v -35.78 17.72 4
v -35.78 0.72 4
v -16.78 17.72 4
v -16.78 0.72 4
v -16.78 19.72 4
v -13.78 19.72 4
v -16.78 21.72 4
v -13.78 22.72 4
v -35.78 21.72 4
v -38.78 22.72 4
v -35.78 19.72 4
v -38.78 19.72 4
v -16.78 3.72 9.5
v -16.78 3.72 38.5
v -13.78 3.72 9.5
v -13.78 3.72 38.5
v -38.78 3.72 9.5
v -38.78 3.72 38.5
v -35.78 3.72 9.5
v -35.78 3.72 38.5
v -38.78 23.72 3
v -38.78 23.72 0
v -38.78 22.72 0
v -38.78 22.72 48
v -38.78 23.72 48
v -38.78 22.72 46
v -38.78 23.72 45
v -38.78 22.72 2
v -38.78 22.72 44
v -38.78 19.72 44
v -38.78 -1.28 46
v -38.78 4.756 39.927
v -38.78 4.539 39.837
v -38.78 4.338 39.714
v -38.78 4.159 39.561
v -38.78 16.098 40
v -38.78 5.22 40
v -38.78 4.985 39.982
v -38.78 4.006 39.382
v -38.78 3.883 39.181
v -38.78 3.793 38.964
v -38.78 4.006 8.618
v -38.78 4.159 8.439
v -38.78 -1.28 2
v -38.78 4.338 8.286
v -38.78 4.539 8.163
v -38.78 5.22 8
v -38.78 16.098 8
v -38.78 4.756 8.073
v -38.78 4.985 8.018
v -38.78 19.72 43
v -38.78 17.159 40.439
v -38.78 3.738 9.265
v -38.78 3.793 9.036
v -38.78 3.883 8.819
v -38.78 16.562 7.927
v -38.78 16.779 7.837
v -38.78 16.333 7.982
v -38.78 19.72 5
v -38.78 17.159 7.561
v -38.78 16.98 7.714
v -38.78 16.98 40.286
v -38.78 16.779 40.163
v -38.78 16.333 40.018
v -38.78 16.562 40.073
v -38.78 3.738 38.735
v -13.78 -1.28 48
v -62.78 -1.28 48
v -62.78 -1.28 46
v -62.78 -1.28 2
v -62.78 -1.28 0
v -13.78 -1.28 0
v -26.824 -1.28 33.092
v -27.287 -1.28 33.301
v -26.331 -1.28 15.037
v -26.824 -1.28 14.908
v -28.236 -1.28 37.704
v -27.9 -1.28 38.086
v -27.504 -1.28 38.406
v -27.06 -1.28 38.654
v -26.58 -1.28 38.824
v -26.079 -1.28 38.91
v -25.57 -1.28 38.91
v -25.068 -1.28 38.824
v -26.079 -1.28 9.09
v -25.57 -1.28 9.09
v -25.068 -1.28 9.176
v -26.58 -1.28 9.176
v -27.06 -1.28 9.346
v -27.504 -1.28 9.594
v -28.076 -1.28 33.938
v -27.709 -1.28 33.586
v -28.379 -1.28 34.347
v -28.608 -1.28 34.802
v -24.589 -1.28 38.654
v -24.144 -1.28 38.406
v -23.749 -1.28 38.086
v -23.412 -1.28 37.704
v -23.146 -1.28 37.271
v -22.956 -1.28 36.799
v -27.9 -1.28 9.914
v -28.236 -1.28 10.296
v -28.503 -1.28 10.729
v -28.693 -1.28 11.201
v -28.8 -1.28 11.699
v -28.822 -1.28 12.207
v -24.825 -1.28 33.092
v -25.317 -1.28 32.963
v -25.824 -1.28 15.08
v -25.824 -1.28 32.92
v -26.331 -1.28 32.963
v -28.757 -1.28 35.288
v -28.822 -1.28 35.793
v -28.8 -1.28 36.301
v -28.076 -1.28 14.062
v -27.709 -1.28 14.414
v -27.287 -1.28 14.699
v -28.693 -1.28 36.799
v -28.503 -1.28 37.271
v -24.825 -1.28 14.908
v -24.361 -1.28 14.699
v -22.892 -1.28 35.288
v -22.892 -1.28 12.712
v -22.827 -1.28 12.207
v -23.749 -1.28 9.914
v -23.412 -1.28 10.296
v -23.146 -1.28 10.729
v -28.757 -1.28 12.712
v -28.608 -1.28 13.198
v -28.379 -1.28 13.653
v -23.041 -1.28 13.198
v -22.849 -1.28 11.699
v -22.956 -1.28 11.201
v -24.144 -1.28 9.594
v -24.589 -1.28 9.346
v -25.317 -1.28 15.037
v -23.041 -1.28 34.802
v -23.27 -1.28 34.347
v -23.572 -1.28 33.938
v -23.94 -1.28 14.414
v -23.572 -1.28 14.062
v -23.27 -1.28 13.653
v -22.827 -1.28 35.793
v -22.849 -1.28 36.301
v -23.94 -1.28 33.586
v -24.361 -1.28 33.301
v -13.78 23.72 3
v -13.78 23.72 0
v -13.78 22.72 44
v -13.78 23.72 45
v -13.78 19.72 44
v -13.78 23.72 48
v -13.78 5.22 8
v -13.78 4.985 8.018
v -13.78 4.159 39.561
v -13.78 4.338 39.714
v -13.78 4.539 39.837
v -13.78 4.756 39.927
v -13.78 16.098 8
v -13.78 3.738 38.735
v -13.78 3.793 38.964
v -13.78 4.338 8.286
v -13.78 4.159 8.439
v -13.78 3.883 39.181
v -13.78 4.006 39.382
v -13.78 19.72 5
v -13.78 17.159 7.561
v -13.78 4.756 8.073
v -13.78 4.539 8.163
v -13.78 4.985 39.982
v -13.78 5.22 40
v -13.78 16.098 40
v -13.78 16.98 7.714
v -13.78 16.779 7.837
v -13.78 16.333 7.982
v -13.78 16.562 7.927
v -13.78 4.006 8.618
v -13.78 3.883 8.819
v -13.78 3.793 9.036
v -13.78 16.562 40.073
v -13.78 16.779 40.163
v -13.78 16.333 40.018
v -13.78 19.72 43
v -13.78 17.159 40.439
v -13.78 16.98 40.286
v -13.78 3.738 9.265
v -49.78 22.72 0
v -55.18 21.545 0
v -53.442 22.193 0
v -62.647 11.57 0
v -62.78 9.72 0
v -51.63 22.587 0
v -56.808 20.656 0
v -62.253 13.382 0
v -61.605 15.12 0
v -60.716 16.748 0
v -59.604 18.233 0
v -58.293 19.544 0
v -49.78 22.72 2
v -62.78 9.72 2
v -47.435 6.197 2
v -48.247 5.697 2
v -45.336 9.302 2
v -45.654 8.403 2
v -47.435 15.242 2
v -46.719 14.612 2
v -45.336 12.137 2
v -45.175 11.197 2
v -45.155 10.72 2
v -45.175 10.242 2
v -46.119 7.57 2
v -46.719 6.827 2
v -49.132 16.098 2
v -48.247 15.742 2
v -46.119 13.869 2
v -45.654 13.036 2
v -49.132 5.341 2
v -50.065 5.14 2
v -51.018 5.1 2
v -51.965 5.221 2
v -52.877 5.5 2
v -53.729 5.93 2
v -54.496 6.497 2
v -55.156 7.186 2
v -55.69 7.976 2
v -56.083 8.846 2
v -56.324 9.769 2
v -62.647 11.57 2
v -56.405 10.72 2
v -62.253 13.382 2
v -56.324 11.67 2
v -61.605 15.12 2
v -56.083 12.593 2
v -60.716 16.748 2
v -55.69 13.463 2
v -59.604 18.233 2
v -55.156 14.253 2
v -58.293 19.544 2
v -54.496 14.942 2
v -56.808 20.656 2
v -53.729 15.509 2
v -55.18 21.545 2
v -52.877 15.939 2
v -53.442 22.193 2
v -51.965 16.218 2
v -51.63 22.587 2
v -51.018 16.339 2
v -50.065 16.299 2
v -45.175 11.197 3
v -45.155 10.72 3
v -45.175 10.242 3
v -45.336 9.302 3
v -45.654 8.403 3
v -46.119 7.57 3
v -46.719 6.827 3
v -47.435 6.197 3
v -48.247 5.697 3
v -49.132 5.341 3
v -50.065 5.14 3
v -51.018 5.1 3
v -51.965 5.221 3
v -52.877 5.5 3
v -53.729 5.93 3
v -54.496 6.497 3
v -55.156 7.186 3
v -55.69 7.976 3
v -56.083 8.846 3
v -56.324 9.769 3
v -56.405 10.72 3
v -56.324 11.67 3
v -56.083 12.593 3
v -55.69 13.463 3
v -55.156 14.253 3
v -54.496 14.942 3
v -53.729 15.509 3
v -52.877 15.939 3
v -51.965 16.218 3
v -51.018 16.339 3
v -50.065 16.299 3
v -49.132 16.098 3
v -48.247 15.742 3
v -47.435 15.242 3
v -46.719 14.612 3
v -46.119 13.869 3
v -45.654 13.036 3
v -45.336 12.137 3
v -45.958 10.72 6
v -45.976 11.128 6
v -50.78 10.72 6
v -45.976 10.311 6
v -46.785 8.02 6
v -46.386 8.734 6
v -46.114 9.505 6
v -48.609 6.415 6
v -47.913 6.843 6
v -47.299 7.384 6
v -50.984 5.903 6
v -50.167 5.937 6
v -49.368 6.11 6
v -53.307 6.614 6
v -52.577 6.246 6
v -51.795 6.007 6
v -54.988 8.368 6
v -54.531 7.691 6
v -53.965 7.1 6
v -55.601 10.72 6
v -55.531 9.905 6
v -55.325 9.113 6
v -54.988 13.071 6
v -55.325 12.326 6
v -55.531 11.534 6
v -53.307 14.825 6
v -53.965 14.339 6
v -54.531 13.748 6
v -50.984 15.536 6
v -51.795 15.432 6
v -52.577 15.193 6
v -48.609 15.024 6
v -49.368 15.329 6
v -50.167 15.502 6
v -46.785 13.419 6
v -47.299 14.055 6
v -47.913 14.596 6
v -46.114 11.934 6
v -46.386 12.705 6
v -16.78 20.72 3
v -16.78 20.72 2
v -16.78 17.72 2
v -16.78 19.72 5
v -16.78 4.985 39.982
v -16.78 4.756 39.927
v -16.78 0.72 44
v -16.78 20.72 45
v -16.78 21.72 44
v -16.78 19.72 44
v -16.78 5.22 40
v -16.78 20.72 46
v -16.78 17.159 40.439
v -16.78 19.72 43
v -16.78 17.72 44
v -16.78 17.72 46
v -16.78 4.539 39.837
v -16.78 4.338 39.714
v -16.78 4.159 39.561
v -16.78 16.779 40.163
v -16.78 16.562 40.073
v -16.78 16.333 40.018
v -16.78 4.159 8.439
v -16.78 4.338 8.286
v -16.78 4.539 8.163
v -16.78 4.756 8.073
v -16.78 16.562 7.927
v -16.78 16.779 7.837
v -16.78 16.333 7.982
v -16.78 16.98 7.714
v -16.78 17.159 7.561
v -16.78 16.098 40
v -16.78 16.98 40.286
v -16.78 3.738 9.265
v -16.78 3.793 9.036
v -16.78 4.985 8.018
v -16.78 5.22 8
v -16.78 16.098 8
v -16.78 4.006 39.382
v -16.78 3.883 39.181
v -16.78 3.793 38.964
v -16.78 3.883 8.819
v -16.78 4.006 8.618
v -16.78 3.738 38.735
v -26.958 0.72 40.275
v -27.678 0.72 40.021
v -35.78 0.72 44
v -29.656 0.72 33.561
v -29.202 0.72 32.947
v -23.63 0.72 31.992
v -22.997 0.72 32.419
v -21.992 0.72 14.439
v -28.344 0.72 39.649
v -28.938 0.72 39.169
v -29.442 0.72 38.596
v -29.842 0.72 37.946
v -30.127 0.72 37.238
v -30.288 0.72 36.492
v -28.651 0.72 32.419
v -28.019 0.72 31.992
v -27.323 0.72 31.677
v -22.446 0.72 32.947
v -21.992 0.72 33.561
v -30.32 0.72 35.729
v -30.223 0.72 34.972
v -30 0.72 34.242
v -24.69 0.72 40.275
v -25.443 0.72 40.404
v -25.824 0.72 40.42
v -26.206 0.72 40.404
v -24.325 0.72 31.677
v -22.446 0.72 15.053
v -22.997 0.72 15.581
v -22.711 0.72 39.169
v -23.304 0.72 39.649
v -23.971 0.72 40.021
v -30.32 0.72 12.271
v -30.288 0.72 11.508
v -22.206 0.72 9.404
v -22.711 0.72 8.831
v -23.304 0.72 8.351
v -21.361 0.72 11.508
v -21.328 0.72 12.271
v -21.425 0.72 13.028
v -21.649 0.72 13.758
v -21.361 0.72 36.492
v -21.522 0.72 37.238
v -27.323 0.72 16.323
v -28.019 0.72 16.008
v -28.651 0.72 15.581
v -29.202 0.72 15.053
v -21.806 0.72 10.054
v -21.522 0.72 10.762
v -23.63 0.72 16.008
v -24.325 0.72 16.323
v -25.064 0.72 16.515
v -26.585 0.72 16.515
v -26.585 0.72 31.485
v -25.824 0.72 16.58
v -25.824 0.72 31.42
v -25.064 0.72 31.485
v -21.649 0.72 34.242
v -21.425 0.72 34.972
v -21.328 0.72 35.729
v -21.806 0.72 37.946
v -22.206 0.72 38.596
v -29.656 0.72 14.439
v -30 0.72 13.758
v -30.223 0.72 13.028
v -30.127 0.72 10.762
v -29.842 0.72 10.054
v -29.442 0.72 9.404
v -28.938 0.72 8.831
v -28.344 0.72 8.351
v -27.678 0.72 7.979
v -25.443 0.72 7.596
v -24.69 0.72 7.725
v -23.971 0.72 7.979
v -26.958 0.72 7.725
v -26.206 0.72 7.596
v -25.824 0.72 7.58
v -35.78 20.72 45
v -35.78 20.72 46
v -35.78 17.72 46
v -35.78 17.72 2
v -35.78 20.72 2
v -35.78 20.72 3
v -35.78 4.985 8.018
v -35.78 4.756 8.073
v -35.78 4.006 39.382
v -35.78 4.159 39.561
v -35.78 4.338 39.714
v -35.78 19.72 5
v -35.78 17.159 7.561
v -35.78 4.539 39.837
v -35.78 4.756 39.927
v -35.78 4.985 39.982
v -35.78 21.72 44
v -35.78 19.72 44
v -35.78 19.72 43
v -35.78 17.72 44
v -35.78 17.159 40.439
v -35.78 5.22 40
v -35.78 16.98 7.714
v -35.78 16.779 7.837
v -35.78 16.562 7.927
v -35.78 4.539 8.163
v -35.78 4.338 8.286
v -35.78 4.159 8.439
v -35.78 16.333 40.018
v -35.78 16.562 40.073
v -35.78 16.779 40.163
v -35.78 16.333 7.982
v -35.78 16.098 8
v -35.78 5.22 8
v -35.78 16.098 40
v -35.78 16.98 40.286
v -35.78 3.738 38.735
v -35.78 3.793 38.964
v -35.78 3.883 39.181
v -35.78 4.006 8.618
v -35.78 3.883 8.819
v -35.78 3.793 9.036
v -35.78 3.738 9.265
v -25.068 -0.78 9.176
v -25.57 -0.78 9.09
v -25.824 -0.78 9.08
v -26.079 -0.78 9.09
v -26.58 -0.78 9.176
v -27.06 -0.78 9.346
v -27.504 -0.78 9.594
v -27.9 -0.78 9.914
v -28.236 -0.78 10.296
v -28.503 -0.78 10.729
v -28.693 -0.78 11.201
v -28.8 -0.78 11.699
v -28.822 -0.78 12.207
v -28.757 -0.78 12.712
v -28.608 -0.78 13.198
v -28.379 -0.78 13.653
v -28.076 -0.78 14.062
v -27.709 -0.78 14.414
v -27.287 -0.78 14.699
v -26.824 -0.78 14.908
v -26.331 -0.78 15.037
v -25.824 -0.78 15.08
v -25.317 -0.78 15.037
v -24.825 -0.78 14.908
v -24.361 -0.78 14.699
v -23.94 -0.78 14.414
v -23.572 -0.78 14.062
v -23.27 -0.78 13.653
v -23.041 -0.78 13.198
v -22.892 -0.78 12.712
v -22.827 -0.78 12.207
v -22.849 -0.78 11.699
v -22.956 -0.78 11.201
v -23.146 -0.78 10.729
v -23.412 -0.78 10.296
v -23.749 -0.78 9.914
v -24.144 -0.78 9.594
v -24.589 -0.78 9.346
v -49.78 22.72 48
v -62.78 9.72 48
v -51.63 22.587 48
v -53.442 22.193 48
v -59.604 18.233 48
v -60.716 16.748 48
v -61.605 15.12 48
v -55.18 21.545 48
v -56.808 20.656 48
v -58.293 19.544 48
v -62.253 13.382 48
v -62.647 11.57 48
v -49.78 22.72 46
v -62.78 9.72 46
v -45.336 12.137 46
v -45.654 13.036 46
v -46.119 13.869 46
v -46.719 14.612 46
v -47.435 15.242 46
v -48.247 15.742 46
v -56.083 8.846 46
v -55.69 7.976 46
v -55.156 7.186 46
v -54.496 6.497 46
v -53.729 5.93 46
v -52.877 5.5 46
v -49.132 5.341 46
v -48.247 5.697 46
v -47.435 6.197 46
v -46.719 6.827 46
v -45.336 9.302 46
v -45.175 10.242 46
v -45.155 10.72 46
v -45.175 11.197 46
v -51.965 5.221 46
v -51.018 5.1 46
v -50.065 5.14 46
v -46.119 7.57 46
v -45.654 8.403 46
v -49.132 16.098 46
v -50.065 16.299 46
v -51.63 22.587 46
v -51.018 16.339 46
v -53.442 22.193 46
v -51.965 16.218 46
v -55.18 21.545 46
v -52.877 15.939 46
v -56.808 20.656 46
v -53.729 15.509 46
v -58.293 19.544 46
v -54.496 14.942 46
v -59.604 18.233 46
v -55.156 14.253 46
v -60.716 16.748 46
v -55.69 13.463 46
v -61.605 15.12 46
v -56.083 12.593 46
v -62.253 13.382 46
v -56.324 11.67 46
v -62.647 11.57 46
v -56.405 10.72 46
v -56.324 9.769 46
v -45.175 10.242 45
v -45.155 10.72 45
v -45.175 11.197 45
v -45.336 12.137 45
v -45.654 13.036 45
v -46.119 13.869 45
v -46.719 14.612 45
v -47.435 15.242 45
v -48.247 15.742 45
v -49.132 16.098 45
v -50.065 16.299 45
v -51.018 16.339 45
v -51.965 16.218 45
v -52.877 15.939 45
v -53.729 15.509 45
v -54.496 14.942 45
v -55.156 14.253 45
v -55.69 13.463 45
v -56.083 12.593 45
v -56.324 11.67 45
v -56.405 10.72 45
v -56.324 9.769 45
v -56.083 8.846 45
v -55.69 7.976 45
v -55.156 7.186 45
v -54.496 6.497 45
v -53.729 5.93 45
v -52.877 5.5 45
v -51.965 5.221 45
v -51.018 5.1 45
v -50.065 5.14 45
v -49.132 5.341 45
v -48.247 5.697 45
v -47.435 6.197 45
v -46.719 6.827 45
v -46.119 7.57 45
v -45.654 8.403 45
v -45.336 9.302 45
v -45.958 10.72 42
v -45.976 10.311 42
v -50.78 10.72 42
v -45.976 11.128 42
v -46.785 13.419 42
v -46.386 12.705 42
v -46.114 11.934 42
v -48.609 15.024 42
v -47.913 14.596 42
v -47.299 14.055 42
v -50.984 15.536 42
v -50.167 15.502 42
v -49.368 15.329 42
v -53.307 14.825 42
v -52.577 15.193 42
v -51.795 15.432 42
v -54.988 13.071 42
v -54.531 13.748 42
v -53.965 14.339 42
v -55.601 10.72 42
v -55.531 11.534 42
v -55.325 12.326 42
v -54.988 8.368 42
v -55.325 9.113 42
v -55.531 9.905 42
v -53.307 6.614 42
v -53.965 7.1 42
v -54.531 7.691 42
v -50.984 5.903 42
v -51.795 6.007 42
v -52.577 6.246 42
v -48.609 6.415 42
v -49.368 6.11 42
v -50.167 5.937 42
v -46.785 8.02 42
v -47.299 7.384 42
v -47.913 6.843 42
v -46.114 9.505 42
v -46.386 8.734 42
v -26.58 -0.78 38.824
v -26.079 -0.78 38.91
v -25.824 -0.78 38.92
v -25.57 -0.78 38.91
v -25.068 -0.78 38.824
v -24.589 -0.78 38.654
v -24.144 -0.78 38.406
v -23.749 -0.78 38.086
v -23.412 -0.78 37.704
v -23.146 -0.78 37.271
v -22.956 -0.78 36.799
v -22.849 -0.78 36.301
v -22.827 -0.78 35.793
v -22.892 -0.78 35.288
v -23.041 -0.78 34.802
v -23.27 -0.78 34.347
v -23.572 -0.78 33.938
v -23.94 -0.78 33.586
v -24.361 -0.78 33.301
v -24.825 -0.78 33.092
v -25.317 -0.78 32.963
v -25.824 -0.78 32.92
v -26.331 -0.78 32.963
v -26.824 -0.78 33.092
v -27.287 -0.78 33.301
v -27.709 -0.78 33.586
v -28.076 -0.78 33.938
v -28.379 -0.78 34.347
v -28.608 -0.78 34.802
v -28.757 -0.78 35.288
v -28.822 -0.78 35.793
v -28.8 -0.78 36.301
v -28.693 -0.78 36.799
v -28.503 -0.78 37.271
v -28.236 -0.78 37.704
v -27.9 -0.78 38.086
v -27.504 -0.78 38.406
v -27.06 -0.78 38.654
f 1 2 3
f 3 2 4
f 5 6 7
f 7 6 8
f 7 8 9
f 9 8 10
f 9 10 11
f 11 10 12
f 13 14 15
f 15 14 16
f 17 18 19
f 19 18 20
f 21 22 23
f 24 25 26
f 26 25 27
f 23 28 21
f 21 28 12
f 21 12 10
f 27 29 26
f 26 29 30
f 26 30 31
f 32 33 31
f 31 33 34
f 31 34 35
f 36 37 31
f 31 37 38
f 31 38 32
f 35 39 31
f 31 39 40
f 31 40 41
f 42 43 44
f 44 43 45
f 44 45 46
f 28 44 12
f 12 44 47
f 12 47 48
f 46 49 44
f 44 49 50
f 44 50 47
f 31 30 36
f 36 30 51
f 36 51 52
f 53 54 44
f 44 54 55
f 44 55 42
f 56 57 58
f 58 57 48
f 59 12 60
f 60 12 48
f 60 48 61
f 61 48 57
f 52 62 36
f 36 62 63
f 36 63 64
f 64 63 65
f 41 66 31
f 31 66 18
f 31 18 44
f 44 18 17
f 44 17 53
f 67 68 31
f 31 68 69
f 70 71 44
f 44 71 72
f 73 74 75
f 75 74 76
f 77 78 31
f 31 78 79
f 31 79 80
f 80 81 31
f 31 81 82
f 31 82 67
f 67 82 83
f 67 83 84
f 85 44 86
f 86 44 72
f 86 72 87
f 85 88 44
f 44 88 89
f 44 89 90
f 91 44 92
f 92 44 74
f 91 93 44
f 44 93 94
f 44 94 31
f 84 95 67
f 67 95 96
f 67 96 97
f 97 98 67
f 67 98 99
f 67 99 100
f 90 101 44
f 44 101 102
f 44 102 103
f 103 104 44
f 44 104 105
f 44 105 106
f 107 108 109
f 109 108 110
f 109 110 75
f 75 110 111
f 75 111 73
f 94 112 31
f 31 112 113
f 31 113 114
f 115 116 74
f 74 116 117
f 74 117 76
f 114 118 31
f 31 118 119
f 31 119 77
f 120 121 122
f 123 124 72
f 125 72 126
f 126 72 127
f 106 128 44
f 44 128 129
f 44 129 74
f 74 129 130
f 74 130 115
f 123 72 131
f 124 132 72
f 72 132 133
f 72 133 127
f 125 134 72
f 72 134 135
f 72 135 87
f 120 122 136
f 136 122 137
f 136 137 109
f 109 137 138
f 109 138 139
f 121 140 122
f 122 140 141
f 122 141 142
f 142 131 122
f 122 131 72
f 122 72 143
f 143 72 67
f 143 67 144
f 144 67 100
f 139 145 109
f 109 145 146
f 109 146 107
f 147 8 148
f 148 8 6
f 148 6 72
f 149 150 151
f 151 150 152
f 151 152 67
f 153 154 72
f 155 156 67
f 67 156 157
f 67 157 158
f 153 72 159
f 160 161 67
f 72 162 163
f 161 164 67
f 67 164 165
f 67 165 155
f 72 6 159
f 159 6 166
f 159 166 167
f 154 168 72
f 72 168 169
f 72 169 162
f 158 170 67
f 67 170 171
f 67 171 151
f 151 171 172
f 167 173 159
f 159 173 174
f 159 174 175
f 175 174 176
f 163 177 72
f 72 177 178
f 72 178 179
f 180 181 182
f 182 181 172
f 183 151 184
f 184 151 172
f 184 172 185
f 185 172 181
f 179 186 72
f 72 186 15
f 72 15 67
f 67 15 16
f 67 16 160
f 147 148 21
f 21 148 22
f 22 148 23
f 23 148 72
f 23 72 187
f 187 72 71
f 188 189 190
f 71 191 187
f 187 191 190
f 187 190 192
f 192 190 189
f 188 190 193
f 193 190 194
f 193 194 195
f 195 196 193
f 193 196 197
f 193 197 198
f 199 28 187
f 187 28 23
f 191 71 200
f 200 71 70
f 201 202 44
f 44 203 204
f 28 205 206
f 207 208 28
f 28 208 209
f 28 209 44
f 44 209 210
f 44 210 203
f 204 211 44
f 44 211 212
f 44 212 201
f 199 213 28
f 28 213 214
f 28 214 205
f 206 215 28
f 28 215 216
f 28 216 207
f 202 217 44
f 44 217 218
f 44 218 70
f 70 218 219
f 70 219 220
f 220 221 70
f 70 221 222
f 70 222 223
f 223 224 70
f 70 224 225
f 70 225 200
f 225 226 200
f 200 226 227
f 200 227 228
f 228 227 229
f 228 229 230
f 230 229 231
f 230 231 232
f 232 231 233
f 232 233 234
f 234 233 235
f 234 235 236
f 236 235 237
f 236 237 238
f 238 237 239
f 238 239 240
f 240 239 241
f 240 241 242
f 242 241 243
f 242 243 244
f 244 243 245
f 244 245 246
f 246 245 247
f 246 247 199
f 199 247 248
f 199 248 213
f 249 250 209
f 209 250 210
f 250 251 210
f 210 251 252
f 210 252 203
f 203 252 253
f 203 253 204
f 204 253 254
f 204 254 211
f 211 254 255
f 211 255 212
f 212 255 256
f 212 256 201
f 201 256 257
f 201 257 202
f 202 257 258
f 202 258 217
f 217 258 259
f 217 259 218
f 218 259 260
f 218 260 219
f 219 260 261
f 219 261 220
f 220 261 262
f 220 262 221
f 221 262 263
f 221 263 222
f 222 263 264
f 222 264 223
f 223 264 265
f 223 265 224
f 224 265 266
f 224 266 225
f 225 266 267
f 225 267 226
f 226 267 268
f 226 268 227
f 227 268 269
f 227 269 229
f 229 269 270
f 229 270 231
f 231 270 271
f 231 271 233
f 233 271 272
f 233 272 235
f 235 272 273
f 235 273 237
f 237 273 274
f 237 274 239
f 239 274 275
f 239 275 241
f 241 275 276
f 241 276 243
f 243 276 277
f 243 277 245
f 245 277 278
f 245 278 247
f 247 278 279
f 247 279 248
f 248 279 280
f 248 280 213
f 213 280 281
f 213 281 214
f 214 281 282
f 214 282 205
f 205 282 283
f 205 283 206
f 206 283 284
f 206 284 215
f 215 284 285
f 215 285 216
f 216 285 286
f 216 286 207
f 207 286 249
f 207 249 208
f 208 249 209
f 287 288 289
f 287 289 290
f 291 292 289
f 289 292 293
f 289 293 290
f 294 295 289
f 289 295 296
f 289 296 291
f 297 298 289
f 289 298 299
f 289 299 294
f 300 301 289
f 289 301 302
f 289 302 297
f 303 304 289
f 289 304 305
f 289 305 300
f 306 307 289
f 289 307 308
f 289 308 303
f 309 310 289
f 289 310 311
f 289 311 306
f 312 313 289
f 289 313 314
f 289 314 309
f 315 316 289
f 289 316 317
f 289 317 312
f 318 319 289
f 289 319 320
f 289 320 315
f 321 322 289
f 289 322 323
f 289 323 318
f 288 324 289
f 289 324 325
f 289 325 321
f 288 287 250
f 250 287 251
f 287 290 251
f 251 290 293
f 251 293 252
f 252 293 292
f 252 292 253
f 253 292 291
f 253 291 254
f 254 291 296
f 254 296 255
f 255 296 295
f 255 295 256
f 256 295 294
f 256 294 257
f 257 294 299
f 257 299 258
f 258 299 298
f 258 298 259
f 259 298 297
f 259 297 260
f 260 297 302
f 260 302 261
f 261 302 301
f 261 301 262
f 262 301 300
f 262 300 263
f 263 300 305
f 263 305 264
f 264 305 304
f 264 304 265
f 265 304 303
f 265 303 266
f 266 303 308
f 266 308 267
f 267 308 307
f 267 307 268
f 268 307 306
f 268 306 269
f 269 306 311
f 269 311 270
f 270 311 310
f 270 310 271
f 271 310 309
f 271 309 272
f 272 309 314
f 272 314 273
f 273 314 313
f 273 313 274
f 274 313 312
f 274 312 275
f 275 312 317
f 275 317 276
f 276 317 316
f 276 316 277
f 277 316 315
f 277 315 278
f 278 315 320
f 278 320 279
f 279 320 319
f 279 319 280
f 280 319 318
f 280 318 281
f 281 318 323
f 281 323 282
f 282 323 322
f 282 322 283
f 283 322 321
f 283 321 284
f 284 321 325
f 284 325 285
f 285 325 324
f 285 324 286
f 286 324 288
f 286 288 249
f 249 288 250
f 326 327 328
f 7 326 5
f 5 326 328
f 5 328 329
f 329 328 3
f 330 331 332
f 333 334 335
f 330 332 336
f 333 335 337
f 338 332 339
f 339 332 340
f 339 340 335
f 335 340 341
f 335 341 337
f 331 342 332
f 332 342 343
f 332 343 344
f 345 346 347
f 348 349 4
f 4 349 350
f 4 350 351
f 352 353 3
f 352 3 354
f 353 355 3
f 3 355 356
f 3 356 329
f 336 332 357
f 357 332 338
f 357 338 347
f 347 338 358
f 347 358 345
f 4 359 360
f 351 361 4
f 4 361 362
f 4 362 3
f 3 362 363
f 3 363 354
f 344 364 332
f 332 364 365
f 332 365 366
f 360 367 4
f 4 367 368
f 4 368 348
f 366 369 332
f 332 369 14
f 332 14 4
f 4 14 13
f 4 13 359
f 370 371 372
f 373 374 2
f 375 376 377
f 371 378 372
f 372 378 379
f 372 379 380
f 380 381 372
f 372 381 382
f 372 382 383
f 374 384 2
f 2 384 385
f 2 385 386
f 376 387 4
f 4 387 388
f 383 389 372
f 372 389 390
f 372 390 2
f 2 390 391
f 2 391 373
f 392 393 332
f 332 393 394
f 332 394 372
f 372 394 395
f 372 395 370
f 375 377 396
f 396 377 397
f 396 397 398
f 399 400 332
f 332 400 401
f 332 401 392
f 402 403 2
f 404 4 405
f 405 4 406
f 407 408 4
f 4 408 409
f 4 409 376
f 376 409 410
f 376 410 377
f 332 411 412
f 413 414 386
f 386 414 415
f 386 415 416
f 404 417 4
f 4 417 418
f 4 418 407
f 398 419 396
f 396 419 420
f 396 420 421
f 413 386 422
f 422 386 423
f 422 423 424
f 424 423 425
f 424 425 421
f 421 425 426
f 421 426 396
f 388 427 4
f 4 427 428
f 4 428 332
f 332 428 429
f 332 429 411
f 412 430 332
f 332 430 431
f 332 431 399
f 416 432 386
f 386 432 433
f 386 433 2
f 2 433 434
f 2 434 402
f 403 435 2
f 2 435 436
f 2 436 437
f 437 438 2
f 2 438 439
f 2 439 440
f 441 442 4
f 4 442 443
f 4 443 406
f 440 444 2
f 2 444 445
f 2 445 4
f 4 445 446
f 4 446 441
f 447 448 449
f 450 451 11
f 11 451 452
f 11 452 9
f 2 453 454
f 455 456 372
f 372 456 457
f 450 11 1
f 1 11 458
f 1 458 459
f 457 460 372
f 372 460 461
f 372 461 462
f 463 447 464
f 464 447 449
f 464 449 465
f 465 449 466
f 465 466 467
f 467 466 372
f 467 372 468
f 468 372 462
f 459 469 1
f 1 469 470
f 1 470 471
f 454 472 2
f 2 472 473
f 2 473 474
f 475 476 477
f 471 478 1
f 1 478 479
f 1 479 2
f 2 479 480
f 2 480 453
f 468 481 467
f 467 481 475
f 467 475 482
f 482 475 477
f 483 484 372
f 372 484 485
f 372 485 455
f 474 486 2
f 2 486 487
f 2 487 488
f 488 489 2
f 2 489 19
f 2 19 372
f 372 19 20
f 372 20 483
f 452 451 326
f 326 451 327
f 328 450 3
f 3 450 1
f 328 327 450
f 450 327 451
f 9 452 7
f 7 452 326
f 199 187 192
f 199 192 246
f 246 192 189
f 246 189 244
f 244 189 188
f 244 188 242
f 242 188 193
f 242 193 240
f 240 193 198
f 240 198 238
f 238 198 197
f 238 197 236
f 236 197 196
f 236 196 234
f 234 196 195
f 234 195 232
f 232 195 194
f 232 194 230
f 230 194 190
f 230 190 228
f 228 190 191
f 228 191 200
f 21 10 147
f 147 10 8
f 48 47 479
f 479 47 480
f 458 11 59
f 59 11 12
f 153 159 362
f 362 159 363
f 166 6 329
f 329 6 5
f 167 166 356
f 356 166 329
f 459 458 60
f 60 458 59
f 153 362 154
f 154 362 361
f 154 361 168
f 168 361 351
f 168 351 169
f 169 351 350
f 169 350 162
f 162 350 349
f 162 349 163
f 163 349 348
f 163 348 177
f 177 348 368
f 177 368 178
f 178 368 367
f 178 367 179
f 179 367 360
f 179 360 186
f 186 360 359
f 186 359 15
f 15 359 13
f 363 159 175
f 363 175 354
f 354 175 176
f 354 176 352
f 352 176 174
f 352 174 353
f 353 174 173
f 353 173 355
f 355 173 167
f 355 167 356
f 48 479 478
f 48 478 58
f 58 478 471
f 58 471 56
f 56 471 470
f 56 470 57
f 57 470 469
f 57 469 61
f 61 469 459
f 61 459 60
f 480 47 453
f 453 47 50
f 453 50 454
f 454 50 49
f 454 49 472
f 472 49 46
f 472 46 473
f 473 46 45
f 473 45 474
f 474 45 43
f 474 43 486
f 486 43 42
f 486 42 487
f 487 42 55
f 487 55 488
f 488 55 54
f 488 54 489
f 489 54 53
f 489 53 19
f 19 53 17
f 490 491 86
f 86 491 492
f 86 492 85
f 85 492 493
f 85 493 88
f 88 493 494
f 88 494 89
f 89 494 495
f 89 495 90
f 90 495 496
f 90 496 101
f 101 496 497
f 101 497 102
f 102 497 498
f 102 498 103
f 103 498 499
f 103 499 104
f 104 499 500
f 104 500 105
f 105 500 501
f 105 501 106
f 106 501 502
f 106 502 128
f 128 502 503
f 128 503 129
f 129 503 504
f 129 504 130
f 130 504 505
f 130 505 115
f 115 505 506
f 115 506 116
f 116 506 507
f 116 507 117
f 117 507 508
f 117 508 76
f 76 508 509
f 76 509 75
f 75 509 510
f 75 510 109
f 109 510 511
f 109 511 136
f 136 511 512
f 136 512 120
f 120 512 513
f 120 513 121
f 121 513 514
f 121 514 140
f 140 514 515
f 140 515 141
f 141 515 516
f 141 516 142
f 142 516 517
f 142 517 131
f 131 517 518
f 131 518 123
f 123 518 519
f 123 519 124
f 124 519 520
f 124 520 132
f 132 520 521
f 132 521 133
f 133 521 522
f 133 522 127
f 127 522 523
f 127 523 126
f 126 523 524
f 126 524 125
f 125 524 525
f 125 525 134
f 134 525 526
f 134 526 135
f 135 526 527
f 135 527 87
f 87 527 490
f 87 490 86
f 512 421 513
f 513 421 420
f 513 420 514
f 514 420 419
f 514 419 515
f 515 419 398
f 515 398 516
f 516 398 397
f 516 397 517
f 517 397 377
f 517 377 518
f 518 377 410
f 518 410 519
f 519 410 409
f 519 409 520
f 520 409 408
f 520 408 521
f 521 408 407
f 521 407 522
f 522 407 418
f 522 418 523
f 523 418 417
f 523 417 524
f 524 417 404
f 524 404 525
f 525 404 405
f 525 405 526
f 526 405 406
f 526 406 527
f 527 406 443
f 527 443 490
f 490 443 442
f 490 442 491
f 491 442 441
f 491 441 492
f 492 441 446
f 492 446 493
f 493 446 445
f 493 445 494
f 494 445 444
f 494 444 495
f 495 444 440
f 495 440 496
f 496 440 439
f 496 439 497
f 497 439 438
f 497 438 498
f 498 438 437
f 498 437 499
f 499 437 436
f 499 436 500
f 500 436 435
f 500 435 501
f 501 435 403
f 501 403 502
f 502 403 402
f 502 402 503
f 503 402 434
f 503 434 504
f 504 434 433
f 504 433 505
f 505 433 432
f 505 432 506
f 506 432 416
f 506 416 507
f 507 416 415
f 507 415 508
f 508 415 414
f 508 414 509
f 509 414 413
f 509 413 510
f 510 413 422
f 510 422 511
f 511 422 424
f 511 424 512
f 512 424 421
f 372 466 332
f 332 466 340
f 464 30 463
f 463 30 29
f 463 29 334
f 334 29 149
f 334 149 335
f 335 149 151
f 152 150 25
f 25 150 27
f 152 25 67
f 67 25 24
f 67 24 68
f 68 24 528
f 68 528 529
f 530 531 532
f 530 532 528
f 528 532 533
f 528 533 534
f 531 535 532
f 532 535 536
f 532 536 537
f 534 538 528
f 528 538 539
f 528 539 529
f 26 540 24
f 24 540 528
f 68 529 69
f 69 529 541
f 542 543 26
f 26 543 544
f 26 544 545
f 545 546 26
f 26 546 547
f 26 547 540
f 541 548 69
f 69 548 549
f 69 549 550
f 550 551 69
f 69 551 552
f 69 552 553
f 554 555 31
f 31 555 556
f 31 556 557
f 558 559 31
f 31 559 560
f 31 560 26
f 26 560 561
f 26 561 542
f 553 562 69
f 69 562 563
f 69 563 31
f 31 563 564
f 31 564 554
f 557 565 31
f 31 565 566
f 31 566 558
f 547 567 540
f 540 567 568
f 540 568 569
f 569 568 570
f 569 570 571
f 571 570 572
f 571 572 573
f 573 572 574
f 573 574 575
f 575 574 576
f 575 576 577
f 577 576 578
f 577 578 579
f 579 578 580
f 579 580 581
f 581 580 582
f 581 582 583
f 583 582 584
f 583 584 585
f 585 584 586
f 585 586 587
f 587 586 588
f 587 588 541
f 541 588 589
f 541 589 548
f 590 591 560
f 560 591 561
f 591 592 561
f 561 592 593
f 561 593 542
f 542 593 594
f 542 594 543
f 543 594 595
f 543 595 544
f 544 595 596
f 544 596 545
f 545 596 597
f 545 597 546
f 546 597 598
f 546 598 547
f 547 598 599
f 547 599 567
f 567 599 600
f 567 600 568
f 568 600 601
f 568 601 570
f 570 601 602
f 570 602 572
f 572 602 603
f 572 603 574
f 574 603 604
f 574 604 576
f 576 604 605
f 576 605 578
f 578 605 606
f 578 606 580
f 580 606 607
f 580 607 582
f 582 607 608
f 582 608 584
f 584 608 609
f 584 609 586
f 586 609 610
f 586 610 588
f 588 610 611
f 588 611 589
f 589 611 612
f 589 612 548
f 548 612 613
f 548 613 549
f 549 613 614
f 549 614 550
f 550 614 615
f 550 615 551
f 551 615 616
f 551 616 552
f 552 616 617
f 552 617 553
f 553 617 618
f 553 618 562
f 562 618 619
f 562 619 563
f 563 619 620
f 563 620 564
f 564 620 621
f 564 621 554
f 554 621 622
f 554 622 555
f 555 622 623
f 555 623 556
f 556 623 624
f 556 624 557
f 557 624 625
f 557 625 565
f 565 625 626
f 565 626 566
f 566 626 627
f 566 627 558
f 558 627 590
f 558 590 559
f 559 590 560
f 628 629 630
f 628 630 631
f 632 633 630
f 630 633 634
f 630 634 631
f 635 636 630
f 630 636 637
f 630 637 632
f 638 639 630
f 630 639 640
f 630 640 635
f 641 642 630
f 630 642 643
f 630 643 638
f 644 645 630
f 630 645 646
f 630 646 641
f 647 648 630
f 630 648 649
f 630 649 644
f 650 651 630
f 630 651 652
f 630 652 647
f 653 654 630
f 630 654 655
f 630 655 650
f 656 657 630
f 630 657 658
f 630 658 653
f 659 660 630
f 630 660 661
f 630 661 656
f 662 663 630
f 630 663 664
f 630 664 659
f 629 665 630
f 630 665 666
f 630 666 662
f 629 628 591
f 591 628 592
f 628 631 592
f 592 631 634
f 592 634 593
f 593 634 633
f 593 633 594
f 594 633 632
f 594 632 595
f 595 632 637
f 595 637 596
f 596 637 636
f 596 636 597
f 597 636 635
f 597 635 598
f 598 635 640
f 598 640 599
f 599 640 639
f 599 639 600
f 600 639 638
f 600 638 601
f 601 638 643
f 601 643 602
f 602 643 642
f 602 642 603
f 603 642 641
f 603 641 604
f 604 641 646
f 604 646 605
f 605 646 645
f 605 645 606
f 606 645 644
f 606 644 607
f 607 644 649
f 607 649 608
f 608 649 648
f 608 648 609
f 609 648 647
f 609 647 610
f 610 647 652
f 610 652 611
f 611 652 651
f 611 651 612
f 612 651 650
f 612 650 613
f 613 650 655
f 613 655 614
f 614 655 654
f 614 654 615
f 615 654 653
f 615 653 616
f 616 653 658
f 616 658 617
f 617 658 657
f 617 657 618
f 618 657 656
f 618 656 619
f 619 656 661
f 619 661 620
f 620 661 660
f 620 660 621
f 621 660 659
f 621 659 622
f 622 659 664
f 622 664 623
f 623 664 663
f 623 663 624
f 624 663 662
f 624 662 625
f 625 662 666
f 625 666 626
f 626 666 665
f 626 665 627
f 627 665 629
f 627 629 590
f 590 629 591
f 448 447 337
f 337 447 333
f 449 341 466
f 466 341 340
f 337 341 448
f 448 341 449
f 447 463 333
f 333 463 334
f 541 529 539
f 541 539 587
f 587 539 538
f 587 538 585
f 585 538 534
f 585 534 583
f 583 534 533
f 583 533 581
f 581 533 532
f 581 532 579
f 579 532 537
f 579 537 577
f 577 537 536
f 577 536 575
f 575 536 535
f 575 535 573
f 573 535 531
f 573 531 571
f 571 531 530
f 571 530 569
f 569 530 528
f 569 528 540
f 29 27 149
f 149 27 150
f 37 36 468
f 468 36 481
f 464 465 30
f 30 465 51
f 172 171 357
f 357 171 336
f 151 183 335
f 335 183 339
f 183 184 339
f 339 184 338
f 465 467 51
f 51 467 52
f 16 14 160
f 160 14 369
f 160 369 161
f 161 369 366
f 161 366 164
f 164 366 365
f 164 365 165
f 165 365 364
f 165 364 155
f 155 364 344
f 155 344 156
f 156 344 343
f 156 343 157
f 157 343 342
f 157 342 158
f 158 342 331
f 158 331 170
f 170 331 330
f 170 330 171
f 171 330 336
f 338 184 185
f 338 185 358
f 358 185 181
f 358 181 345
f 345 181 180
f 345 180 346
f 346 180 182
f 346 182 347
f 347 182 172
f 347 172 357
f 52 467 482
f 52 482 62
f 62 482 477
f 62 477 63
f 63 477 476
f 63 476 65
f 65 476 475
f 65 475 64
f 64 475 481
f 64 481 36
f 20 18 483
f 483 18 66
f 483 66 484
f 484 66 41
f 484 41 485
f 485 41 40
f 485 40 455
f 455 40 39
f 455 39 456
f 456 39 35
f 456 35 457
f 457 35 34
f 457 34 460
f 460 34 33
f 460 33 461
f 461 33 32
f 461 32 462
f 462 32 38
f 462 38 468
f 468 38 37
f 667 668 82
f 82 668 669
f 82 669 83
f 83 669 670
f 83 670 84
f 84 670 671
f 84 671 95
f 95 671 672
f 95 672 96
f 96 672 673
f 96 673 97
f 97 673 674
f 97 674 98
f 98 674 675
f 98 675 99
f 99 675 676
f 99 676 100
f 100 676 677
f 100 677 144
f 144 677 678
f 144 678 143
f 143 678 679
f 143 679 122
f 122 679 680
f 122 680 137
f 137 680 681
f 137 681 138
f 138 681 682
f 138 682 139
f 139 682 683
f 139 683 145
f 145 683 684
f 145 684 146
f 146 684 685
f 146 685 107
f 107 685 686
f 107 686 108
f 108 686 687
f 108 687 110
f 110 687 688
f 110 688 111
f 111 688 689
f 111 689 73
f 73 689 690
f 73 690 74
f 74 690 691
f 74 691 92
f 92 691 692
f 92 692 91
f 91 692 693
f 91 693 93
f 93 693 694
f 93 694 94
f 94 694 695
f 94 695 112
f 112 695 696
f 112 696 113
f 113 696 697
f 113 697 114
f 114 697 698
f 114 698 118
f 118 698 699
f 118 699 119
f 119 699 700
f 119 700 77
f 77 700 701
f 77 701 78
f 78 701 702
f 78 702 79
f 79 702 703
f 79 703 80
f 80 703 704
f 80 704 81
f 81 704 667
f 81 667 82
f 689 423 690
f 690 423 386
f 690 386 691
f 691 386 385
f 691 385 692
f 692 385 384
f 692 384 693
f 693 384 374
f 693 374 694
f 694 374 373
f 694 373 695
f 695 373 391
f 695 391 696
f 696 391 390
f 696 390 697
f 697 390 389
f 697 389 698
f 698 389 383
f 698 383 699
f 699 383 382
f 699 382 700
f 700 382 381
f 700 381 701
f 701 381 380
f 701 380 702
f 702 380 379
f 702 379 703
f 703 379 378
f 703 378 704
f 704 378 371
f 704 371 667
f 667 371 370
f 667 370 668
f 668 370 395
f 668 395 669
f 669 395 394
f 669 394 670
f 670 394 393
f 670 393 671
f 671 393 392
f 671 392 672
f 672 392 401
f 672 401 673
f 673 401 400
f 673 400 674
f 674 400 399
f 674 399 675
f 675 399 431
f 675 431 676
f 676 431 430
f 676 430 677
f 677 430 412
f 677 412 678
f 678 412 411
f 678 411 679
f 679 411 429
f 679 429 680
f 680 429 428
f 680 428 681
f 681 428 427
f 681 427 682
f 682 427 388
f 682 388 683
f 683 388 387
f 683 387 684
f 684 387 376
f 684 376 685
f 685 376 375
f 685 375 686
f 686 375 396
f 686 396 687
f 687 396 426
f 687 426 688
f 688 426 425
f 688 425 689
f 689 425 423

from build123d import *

# Parameters (mm, degrees)
SKETCH_1_W             = 25
SKETCH_1_H             = 25
EXTRUDE_1_DEPTH        = 4
SKETCH_2_W             = 24
SKETCH_2_H             = 24
EXTRUDE_2_DEPTH        = 2
SKETCH_3_R             = 5.625
EXTRUDE_3_DEPTH        = 4
CHAMFER_1_SIZE         = 3
CHAMFER_1_SIZE2        = 0.803847577
EXTRUDE_4_DEPTH        = 2
SKETCH_6_R             = 5
CUT_EXTRUDE_2_DEPTH    = 10
EXTRUDE_6_DEPTH        = 20
SKETCH_9_W             = 19
SKETCH_9_H             = 3
CUT_EXTRUDE_4_DEPTH    = 2
CHAMFER_2_SIZE         = 1
CHAMFER_3_SIZE         = 3.732050808
CHAMFER_3_SIZE_2       = 1
FILLET_1_R             = 13
CHAMFER_4_SIZE         = 1
SKETCH_11_W            = 3
SKETCH_11_H            = 4
EXTRUDE_7_DEPTH        = 16
PATTERN_LINEAR_1_COUNT = 2
PATTERN_LINEAR_1_PITCH = 22
CHAMFER_6_SIZE         = 3
FILLET_2_R             = 1.5
SKETCH_13_W            = 40.293086247
SKETCH_13_H            = 27.591529789
CUT_EXTRUDE_6_DEPTH    = 100
SKETCH_14_R            = 3
CUT_EXTRUDE_7_DEPTH    = 100
CHAMFER_7_SIZE         = 1.5


with BuildPart() as part:
    # Эскиз1 → Бобышка-Вытянуть1 (new body)
    with BuildSketch(Plane.XY):
        with Locations((-26.279531703, 11.219512195)):
            Rectangle(SKETCH_1_W, SKETCH_1_H)
    extrude(amount=EXTRUDE_1_DEPTH)

    # Эскиз2 → Бобышка-Вытянуть2 (add)
    with BuildSketch(Plane(origin=(0, 0, 0), x_dir=(-1, 0, 0), z_dir=(0, 0, -1))):
        with Locations((50.779531703, 10.719512195)):
            Rectangle(SKETCH_2_W, SKETCH_2_H)
    extrude(amount=-EXTRUDE_2_DEPTH)

    # Эскиз3 → Бобышка-Вытянуть3 (add)
    with BuildSketch(Plane.XY.offset(2)):
        with Locations((-50.779531703, 10.719512195)):
            Circle(SKETCH_3_R)
    extrude(amount=EXTRUDE_3_DEPTH)

    # Фаска1
    chamfer_1_edges = [part.edges().sort_by_distance(p)[0] for p in [
        (-56.404531703, 10.719512195, 6),
    ]]
    chamfer_1_side = [part.faces().sort_by_distance(p)[0] for p in [
        (-56.404531703, 10.719512195, 4),
    ]]
    chamfer(chamfer_1_edges, length=CHAMFER_1_SIZE, length2=CHAMFER_1_SIZE2, reference=chamfer_1_side[0])

    # Эскиз5 → Бобышка-Вытянуть4 (add)
    with BuildSketch(Plane.XY.offset(4)):
        with BuildLine():
            Line((-18.981970926, 22.719512195), (-0.779531703, 22.719512195))
            ThreePointArc((-0.779531703, 22.719512195), (11.220468297, 10.719512195), (-0.779531703, -1.280487805))
            Line((-0.779531703, -1.280487805), (-18.981970926, -1.280487805))
            ThreePointArc((-18.981970926, -1.280487805), (-30.981970926, 10.719512195), (-18.981970926, 22.719512195))
        make_face()
    extrude(amount=-EXTRUDE_4_DEPTH)

    # Эскиз6 → Вырез-Вытянуть2 (cut)
    with BuildSketch(Plane(origin=(0, 0, 2), x_dir=(-1, 0, 0), z_dir=(0, 0, -1))):
        with Locations((0.779531703, 10.719512195)):
            Circle(SKETCH_6_R)
    extrude(amount=-CUT_EXTRUDE_2_DEPTH, mode=Mode.SUBTRACT)

    # Эскиз8 → Бобышка-Вытянуть6 (add)
    with BuildSketch(Plane.XY.offset(4)):
        Polygon((-38.779531703, 3.719512195), (-35.779531703, 3.719512195), (-35.779531703, 0.719512195), (-16.779531703, 0.719512195), (-16.779531703, 3.719512195), (-13.779531703, 3.719512195), (-13.779531703, -1.280487805), (-38.779531703, -1.280487805), align=None)
    extrude(amount=EXTRUDE_6_DEPTH)

    # Эскиз9 → Вырез-Вытянуть4 (cut)
    with BuildSketch(Plane.XY.offset(4)):
        with Locations((-26.279531703, 19.219512195)):
            Rectangle(SKETCH_9_W, SKETCH_9_H)
    extrude(amount=-CUT_EXTRUDE_4_DEPTH, mode=Mode.SUBTRACT)

    # Фаска2
    chamfer_2_edges = [part.edges().sort_by_distance(p)[0] for p in [
        (-26.279531703, 20.719512195, 4),
    ]]
    chamfer(chamfer_2_edges, length=CHAMFER_2_SIZE)

    # Фаска3
    # the kernel refuses this chamfer: 3.732050808, 1 mm, written as the material it takes off along each edge
    with BuildSketch(Plane(origin=(-0.779531703, 10.719512195, 2), x_dir=(-1, 0, 0), z_dir=(0, -1, 0))) as chamfer_3_piece_1:
        Polygon((5, -CHAMFER_3_SIZE), (5 + CHAMFER_3_SIZE_2, 0), (5, 0), align=None)
    revolve(axis=Axis((-0.779531703, 10.719512195, 2), (0, 0, -1)), mode=Mode.SUBTRACT)

    # Скругление1
    fillet_1_edges = [part.edges().sort_by_distance(p)[0] for p in [
        (-62.779531703, 22.719512195, 1),
    ]]
    fillet(fillet_1_edges, radius=FILLET_1_R)

    # Фаска4
    chamfer_4_edges = [part.edges().sort_by_distance(p)[0] for p in [
        (-26.279531703, 23.719512195, 4),
    ]]
    chamfer(chamfer_4_edges, length=CHAMFER_4_SIZE)

    # Эскиз11 → Бобышка-Вытянуть7 (add)
    with BuildSketch(Plane(origin=(0, 3.719512195, 0), x_dir=(1, 0, 0), z_dir=(0, 1, 0))):
        with Locations((-37.279531703, -6)):
            Rectangle(SKETCH_11_W, SKETCH_11_H)
    extrude_7 = extrude(amount=EXTRUDE_7_DEPTH)

    # Линейный массив1: Бобышка-Вытянуть7 ×2
    with Locations(*[(i * PATTERN_LINEAR_1_PITCH, 0, 0) for i in range(1, PATTERN_LINEAR_1_COUNT)]):
        add(extrude_7)

    # Фаска6
    chamfer_6_edges = [part.edges().sort_by_distance(p)[0] for p in [
        (-37.279531703, 19.719512195, 8),
        (-15.279531703, 19.719512195, 8),
    ]]
    chamfer(chamfer_6_edges, length=CHAMFER_6_SIZE)

    # Скругление2
    fillet_2_edges = [part.edges().sort_by_distance(p)[0] for p in [
        (-37.279531703, 3.719512195, 8),
        (-15.279531703, 3.719512195, 8),
        (-15.279531703, 16.719512195, 8),
        (-37.279531703, 16.719512195, 8),
    ]]
    fillet(fillet_2_edges, radius=FILLET_2_R)

    # Эскиз13 → Вырез-Вытянуть6 (cut)
    with BuildSketch(Plane.XY.offset(4)):
        with Locations((6.36701142, 8.923747301)):
            Rectangle(SKETCH_13_W, SKETCH_13_H)
    extrude(amount=-CUT_EXTRUDE_6_DEPTH, mode=Mode.SUBTRACT)

    # Эскиз14 → Вырез-Вытянуть7 (cut)
    with BuildSketch(Plane(origin=(0, 0.719512195, 0), x_dir=(1, 0, 0), z_dir=(0, 1, 0))):
        with Locations(Location((-25.824324294, -12.079681064, 0), (0, 0, 270))):
            Circle(SKETCH_14_R)
    extrude(amount=-CUT_EXTRUDE_7_DEPTH, mode=Mode.SUBTRACT)

    # Фаска7
    chamfer_7_edges = [part.edges().sort_by_distance(p)[0] for p in [
        (-25.824324294, 0.719512195, 9.079681064),
    ]]
    chamfer(chamfer_7_edges, length=CHAMFER_7_SIZE)

    # Зеркальное отражение1: part across plane


with BuildPart() as part_1:
    add(part.part)
    add(part.part.mirror(Plane(origin=(0, 0, 24), x_dir=(1, 0, 0), z_dir=(0, 0, -1))))


solid = part_1.part
